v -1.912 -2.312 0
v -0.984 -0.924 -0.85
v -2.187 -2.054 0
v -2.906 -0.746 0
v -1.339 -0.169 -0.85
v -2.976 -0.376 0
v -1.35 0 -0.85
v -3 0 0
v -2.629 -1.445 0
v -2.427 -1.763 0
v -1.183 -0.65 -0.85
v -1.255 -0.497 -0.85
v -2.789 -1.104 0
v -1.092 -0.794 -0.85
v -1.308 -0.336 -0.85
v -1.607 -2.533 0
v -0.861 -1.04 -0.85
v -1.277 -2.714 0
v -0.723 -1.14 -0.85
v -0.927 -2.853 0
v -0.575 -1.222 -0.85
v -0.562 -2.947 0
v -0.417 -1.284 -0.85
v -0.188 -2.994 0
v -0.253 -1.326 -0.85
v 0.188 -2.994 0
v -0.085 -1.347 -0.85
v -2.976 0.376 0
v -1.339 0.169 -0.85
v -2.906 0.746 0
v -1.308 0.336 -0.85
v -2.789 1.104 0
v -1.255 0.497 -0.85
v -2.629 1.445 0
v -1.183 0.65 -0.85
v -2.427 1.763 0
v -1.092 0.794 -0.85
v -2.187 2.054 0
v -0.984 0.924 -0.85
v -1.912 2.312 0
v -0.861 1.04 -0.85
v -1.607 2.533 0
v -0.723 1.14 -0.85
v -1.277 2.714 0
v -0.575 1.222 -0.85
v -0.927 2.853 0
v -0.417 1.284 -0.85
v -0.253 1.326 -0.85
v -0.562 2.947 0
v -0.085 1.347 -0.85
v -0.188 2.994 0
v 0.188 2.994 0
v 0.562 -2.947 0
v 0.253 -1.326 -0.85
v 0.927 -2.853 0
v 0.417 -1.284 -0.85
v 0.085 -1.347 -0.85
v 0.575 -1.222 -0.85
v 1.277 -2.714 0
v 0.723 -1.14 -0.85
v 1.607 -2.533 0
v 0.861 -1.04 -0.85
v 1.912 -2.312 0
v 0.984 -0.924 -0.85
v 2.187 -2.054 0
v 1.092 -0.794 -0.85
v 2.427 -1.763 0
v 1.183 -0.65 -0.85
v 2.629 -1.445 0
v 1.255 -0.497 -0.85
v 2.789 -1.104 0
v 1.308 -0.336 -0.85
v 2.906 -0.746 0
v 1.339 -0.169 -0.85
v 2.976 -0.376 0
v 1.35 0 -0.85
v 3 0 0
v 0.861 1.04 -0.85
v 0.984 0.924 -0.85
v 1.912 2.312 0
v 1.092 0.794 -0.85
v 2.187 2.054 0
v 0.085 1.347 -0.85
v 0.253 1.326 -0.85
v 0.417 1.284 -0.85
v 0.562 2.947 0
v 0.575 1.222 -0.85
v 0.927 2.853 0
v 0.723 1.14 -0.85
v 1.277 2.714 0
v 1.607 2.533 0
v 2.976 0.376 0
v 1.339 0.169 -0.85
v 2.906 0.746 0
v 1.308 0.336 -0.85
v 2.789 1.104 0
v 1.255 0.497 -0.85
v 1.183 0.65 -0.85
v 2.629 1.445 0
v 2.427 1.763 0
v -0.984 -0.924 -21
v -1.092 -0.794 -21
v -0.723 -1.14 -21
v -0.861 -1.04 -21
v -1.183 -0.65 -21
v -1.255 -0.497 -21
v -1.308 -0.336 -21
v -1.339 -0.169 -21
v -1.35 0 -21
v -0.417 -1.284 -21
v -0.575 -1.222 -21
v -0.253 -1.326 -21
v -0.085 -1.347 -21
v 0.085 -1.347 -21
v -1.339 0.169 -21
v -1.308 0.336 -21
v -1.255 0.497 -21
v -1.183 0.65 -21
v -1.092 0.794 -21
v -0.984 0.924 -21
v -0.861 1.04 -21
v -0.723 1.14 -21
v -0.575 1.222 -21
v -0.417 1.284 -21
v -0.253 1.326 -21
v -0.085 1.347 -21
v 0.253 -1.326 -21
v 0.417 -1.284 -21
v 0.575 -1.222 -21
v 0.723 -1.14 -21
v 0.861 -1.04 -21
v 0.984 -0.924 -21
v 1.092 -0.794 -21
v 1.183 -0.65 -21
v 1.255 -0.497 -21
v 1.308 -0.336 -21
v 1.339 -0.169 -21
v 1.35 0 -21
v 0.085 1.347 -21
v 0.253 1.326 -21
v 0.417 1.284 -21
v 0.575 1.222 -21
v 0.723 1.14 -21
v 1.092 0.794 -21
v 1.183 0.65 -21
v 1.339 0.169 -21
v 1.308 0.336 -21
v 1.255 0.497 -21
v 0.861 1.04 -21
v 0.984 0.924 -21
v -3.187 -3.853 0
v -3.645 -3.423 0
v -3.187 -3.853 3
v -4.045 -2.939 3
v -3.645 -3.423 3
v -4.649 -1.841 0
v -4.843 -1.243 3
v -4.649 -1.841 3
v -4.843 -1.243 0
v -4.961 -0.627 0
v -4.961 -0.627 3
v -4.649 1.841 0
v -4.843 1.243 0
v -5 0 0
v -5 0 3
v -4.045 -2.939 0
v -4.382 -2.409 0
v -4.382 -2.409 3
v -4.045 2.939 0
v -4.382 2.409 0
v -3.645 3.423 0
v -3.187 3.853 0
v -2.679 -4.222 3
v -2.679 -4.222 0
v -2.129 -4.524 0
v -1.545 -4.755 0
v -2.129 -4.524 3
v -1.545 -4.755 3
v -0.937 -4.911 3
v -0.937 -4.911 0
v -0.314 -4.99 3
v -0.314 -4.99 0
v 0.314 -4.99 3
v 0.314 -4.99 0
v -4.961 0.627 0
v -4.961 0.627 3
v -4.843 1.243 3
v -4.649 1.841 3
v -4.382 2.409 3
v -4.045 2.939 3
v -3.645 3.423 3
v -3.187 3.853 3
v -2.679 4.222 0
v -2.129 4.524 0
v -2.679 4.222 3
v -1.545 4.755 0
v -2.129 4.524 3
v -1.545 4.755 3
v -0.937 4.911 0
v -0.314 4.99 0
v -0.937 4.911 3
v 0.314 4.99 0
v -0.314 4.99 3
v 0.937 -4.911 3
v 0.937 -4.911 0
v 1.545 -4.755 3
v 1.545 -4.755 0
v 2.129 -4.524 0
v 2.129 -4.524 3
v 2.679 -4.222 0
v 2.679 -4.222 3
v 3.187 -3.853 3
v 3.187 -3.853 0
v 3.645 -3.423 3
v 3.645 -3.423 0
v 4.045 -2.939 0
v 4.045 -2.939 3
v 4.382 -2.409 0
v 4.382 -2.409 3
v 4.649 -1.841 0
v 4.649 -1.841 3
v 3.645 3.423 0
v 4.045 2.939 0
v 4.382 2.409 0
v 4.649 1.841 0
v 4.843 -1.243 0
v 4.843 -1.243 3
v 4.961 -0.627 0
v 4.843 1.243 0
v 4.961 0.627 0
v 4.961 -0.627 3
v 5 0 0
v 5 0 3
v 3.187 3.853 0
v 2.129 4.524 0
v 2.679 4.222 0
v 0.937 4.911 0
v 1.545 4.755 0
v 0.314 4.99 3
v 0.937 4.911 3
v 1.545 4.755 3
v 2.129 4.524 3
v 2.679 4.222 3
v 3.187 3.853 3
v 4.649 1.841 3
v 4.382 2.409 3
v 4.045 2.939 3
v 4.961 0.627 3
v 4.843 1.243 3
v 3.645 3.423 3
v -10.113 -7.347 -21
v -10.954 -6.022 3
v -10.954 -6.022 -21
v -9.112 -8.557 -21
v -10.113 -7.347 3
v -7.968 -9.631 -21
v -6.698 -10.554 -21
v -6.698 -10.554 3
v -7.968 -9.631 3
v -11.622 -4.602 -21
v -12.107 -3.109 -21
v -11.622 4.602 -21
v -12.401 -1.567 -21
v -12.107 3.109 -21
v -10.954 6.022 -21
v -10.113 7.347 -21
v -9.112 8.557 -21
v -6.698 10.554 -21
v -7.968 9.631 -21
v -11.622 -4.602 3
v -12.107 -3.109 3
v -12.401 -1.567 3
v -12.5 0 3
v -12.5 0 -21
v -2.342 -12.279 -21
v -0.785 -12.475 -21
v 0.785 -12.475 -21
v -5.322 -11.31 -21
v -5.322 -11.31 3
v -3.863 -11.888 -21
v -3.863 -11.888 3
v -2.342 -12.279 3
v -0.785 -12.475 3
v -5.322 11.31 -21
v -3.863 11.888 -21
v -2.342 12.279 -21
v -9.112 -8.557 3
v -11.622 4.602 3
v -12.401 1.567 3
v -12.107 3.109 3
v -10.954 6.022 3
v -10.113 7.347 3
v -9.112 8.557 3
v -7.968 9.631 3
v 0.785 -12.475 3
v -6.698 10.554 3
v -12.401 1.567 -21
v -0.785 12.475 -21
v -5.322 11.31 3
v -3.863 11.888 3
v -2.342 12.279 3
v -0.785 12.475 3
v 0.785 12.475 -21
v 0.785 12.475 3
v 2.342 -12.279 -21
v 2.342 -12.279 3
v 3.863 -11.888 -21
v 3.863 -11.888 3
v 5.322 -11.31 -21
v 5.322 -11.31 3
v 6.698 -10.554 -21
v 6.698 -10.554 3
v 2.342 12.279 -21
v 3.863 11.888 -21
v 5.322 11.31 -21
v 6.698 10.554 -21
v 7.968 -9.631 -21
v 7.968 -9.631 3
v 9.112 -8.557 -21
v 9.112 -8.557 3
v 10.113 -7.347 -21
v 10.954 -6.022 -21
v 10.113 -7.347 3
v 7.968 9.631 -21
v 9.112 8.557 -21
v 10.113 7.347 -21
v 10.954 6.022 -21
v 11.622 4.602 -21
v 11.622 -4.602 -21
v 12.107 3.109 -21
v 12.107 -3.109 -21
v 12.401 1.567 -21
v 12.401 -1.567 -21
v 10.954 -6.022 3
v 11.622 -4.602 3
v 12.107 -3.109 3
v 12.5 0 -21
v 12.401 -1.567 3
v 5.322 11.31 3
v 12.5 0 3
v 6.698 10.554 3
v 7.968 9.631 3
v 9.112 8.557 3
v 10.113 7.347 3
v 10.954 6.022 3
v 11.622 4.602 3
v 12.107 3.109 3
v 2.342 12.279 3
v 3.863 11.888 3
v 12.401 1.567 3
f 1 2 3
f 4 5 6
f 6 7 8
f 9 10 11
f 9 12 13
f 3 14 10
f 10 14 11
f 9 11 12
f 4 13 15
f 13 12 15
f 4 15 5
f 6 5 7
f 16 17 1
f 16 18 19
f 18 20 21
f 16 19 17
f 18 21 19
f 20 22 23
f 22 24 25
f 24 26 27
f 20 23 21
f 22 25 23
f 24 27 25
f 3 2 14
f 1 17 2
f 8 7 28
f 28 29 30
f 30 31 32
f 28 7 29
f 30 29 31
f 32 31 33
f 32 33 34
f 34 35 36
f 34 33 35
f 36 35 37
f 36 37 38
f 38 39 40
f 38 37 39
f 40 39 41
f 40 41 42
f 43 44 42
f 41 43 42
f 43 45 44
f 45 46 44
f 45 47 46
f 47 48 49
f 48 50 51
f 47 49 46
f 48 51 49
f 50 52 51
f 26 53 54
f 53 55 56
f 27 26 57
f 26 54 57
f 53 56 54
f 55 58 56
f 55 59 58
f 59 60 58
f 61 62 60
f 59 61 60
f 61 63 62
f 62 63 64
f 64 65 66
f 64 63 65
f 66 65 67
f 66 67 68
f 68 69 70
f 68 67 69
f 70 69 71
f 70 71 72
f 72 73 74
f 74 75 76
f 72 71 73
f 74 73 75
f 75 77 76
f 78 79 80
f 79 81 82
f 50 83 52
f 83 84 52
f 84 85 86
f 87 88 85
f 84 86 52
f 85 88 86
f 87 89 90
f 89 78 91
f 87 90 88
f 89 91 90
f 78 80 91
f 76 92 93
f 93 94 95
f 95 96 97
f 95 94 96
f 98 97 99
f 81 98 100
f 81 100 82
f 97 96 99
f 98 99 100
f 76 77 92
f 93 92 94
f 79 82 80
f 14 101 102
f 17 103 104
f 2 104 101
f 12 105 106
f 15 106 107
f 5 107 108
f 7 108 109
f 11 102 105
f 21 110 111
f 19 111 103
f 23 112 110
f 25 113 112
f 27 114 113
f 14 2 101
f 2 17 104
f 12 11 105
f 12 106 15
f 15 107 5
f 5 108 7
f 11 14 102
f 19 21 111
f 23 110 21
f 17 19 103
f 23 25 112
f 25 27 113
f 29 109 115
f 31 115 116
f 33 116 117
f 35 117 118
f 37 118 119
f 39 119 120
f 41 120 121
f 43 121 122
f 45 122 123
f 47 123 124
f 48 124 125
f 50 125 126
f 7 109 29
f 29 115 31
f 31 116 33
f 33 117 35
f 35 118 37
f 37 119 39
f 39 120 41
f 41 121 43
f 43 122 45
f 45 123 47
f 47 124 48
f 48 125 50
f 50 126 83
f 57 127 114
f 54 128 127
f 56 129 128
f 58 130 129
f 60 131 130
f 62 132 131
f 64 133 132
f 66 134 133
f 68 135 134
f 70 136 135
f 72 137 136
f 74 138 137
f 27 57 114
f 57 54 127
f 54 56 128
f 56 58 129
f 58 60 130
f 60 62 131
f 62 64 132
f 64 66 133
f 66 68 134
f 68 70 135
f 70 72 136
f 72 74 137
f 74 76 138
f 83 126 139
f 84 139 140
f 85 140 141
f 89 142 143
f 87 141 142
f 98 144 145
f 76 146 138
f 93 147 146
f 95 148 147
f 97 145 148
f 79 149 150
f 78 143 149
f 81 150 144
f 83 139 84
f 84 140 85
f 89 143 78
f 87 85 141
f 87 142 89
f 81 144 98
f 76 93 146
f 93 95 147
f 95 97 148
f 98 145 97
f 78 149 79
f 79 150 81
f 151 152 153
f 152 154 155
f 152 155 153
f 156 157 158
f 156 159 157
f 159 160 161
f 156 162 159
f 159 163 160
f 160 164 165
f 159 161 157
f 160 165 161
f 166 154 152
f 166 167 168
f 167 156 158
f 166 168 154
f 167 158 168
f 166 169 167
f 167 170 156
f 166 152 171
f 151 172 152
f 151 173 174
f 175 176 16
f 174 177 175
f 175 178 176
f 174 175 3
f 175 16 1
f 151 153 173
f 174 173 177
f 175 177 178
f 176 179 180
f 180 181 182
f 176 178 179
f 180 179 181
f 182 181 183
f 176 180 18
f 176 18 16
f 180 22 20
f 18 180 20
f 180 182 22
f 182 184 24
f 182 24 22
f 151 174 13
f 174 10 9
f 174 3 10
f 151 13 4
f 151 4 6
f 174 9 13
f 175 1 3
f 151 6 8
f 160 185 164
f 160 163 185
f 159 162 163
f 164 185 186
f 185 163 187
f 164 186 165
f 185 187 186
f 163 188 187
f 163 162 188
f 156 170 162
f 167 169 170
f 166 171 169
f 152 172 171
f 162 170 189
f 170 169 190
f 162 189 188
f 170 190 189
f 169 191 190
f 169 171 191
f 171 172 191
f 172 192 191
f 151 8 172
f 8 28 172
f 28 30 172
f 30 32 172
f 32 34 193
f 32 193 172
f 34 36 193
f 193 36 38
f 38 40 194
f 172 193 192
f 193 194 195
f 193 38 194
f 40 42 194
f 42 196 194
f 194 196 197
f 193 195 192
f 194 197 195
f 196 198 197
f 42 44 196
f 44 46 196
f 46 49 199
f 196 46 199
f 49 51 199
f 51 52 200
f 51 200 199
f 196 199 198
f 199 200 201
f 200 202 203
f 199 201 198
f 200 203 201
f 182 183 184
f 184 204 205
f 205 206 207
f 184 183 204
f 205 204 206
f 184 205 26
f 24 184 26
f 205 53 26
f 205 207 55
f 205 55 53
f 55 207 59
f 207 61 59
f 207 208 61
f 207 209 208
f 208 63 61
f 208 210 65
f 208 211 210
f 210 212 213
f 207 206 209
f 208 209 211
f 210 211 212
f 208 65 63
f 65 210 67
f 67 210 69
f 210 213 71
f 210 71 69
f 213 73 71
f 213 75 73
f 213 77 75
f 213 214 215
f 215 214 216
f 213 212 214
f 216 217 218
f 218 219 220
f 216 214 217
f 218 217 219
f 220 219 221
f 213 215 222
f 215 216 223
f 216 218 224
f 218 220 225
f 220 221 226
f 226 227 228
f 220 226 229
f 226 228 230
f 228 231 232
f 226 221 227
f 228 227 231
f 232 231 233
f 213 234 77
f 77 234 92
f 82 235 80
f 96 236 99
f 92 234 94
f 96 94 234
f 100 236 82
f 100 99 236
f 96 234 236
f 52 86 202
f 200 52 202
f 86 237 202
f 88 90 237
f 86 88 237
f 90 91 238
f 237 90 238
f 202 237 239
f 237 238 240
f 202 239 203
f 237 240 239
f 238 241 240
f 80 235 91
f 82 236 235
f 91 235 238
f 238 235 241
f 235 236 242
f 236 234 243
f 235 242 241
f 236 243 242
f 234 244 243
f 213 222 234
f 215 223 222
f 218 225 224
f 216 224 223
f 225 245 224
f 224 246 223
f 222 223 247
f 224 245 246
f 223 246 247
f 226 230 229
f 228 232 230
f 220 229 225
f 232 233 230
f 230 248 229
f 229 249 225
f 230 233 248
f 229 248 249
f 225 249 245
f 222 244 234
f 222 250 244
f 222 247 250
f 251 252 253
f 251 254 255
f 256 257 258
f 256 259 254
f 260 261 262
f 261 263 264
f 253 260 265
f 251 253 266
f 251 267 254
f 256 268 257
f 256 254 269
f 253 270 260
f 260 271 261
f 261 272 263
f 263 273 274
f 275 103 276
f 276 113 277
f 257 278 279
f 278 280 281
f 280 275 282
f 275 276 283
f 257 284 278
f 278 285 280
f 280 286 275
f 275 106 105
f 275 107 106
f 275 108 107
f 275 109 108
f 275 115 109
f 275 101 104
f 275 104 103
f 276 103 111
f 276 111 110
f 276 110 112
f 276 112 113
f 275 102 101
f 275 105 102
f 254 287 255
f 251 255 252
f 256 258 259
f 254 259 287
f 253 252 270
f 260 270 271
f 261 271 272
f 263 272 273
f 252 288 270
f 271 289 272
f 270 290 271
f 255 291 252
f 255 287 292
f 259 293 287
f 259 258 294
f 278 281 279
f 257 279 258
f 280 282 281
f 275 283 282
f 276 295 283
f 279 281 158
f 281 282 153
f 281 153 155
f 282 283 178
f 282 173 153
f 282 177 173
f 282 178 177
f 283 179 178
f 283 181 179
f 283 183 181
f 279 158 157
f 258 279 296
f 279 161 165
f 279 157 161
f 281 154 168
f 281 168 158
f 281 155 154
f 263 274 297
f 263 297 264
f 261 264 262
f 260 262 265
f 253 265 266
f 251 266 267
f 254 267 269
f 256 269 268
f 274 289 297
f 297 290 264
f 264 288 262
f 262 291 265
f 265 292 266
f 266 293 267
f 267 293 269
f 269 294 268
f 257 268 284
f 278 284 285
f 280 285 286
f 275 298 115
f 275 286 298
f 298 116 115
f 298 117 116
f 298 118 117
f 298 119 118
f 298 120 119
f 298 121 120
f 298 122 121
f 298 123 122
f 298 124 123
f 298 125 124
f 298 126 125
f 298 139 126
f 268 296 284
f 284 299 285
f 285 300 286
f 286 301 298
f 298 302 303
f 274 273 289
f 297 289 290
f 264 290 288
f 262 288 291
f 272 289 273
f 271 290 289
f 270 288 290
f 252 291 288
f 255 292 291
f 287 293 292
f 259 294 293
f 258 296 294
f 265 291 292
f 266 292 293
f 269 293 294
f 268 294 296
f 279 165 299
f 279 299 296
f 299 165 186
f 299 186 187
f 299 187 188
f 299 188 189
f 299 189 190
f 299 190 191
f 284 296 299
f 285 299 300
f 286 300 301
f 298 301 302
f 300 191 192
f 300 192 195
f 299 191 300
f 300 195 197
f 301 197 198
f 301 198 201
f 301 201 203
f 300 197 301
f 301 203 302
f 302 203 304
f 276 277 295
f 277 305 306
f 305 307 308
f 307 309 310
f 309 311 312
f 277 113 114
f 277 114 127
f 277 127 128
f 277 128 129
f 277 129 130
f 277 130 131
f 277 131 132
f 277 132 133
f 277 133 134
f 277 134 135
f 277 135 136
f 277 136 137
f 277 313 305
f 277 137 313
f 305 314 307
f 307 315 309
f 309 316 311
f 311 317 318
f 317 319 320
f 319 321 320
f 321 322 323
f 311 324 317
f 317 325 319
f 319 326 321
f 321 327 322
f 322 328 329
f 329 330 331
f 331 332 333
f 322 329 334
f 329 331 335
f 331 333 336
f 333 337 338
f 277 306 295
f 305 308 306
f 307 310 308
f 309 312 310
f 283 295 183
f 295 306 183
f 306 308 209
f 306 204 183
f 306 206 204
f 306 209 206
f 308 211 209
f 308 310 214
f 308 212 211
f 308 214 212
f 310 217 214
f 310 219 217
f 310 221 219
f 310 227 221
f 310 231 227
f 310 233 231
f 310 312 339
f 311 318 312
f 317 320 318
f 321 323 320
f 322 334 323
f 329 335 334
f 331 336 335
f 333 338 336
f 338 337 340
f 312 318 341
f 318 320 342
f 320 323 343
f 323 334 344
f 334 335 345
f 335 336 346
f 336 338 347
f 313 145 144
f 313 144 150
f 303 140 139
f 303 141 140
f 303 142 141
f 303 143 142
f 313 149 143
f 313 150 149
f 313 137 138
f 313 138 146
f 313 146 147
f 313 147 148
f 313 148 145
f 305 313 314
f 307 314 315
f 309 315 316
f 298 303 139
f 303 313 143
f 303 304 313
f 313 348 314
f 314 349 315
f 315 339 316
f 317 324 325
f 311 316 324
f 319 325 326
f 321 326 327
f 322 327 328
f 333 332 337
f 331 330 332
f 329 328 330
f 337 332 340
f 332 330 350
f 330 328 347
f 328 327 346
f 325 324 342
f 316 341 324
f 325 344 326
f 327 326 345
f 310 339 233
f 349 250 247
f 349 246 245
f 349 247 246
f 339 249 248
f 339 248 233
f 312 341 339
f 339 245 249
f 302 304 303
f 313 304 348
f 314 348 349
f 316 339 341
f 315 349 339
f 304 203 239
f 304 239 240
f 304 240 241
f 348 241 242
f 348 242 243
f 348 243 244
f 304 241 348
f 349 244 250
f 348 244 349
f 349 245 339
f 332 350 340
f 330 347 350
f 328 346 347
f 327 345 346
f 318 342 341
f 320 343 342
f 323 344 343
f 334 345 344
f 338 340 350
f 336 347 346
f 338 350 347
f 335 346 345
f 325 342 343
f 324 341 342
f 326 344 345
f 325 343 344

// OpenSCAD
$fn = 50;

difference() {
	union() {
		translate(v = [0, 0, -21.0]) {
			cylinder(h = 24, r = 12.5);
		}
	}
	union() {
		translate(v = [0, 0, 0]) {
			rotate(a = [0, 0, 0]) {
				difference() {
					union() {
						translate(v = [0, 0, -24.0]) {
							cylinder(h = 24, r = 1.0);
						}
						translate(v = [0, 0, -0.85]) {
							cylinder(h = 0.85, r1 = 1.35, r2 = 3.0);
						}
						translate(v = [0, 0, -24.0]) {
							cylinder(h = 24, r = 1.35);
						}
						translate(v = [0, 0, -24.0]) {
							cylinder(h = 24, r = 1.0);
						}
					}
					union();
				}
			}
		}
		#cylinder(h = 3, r = 5.0);
	}
}
